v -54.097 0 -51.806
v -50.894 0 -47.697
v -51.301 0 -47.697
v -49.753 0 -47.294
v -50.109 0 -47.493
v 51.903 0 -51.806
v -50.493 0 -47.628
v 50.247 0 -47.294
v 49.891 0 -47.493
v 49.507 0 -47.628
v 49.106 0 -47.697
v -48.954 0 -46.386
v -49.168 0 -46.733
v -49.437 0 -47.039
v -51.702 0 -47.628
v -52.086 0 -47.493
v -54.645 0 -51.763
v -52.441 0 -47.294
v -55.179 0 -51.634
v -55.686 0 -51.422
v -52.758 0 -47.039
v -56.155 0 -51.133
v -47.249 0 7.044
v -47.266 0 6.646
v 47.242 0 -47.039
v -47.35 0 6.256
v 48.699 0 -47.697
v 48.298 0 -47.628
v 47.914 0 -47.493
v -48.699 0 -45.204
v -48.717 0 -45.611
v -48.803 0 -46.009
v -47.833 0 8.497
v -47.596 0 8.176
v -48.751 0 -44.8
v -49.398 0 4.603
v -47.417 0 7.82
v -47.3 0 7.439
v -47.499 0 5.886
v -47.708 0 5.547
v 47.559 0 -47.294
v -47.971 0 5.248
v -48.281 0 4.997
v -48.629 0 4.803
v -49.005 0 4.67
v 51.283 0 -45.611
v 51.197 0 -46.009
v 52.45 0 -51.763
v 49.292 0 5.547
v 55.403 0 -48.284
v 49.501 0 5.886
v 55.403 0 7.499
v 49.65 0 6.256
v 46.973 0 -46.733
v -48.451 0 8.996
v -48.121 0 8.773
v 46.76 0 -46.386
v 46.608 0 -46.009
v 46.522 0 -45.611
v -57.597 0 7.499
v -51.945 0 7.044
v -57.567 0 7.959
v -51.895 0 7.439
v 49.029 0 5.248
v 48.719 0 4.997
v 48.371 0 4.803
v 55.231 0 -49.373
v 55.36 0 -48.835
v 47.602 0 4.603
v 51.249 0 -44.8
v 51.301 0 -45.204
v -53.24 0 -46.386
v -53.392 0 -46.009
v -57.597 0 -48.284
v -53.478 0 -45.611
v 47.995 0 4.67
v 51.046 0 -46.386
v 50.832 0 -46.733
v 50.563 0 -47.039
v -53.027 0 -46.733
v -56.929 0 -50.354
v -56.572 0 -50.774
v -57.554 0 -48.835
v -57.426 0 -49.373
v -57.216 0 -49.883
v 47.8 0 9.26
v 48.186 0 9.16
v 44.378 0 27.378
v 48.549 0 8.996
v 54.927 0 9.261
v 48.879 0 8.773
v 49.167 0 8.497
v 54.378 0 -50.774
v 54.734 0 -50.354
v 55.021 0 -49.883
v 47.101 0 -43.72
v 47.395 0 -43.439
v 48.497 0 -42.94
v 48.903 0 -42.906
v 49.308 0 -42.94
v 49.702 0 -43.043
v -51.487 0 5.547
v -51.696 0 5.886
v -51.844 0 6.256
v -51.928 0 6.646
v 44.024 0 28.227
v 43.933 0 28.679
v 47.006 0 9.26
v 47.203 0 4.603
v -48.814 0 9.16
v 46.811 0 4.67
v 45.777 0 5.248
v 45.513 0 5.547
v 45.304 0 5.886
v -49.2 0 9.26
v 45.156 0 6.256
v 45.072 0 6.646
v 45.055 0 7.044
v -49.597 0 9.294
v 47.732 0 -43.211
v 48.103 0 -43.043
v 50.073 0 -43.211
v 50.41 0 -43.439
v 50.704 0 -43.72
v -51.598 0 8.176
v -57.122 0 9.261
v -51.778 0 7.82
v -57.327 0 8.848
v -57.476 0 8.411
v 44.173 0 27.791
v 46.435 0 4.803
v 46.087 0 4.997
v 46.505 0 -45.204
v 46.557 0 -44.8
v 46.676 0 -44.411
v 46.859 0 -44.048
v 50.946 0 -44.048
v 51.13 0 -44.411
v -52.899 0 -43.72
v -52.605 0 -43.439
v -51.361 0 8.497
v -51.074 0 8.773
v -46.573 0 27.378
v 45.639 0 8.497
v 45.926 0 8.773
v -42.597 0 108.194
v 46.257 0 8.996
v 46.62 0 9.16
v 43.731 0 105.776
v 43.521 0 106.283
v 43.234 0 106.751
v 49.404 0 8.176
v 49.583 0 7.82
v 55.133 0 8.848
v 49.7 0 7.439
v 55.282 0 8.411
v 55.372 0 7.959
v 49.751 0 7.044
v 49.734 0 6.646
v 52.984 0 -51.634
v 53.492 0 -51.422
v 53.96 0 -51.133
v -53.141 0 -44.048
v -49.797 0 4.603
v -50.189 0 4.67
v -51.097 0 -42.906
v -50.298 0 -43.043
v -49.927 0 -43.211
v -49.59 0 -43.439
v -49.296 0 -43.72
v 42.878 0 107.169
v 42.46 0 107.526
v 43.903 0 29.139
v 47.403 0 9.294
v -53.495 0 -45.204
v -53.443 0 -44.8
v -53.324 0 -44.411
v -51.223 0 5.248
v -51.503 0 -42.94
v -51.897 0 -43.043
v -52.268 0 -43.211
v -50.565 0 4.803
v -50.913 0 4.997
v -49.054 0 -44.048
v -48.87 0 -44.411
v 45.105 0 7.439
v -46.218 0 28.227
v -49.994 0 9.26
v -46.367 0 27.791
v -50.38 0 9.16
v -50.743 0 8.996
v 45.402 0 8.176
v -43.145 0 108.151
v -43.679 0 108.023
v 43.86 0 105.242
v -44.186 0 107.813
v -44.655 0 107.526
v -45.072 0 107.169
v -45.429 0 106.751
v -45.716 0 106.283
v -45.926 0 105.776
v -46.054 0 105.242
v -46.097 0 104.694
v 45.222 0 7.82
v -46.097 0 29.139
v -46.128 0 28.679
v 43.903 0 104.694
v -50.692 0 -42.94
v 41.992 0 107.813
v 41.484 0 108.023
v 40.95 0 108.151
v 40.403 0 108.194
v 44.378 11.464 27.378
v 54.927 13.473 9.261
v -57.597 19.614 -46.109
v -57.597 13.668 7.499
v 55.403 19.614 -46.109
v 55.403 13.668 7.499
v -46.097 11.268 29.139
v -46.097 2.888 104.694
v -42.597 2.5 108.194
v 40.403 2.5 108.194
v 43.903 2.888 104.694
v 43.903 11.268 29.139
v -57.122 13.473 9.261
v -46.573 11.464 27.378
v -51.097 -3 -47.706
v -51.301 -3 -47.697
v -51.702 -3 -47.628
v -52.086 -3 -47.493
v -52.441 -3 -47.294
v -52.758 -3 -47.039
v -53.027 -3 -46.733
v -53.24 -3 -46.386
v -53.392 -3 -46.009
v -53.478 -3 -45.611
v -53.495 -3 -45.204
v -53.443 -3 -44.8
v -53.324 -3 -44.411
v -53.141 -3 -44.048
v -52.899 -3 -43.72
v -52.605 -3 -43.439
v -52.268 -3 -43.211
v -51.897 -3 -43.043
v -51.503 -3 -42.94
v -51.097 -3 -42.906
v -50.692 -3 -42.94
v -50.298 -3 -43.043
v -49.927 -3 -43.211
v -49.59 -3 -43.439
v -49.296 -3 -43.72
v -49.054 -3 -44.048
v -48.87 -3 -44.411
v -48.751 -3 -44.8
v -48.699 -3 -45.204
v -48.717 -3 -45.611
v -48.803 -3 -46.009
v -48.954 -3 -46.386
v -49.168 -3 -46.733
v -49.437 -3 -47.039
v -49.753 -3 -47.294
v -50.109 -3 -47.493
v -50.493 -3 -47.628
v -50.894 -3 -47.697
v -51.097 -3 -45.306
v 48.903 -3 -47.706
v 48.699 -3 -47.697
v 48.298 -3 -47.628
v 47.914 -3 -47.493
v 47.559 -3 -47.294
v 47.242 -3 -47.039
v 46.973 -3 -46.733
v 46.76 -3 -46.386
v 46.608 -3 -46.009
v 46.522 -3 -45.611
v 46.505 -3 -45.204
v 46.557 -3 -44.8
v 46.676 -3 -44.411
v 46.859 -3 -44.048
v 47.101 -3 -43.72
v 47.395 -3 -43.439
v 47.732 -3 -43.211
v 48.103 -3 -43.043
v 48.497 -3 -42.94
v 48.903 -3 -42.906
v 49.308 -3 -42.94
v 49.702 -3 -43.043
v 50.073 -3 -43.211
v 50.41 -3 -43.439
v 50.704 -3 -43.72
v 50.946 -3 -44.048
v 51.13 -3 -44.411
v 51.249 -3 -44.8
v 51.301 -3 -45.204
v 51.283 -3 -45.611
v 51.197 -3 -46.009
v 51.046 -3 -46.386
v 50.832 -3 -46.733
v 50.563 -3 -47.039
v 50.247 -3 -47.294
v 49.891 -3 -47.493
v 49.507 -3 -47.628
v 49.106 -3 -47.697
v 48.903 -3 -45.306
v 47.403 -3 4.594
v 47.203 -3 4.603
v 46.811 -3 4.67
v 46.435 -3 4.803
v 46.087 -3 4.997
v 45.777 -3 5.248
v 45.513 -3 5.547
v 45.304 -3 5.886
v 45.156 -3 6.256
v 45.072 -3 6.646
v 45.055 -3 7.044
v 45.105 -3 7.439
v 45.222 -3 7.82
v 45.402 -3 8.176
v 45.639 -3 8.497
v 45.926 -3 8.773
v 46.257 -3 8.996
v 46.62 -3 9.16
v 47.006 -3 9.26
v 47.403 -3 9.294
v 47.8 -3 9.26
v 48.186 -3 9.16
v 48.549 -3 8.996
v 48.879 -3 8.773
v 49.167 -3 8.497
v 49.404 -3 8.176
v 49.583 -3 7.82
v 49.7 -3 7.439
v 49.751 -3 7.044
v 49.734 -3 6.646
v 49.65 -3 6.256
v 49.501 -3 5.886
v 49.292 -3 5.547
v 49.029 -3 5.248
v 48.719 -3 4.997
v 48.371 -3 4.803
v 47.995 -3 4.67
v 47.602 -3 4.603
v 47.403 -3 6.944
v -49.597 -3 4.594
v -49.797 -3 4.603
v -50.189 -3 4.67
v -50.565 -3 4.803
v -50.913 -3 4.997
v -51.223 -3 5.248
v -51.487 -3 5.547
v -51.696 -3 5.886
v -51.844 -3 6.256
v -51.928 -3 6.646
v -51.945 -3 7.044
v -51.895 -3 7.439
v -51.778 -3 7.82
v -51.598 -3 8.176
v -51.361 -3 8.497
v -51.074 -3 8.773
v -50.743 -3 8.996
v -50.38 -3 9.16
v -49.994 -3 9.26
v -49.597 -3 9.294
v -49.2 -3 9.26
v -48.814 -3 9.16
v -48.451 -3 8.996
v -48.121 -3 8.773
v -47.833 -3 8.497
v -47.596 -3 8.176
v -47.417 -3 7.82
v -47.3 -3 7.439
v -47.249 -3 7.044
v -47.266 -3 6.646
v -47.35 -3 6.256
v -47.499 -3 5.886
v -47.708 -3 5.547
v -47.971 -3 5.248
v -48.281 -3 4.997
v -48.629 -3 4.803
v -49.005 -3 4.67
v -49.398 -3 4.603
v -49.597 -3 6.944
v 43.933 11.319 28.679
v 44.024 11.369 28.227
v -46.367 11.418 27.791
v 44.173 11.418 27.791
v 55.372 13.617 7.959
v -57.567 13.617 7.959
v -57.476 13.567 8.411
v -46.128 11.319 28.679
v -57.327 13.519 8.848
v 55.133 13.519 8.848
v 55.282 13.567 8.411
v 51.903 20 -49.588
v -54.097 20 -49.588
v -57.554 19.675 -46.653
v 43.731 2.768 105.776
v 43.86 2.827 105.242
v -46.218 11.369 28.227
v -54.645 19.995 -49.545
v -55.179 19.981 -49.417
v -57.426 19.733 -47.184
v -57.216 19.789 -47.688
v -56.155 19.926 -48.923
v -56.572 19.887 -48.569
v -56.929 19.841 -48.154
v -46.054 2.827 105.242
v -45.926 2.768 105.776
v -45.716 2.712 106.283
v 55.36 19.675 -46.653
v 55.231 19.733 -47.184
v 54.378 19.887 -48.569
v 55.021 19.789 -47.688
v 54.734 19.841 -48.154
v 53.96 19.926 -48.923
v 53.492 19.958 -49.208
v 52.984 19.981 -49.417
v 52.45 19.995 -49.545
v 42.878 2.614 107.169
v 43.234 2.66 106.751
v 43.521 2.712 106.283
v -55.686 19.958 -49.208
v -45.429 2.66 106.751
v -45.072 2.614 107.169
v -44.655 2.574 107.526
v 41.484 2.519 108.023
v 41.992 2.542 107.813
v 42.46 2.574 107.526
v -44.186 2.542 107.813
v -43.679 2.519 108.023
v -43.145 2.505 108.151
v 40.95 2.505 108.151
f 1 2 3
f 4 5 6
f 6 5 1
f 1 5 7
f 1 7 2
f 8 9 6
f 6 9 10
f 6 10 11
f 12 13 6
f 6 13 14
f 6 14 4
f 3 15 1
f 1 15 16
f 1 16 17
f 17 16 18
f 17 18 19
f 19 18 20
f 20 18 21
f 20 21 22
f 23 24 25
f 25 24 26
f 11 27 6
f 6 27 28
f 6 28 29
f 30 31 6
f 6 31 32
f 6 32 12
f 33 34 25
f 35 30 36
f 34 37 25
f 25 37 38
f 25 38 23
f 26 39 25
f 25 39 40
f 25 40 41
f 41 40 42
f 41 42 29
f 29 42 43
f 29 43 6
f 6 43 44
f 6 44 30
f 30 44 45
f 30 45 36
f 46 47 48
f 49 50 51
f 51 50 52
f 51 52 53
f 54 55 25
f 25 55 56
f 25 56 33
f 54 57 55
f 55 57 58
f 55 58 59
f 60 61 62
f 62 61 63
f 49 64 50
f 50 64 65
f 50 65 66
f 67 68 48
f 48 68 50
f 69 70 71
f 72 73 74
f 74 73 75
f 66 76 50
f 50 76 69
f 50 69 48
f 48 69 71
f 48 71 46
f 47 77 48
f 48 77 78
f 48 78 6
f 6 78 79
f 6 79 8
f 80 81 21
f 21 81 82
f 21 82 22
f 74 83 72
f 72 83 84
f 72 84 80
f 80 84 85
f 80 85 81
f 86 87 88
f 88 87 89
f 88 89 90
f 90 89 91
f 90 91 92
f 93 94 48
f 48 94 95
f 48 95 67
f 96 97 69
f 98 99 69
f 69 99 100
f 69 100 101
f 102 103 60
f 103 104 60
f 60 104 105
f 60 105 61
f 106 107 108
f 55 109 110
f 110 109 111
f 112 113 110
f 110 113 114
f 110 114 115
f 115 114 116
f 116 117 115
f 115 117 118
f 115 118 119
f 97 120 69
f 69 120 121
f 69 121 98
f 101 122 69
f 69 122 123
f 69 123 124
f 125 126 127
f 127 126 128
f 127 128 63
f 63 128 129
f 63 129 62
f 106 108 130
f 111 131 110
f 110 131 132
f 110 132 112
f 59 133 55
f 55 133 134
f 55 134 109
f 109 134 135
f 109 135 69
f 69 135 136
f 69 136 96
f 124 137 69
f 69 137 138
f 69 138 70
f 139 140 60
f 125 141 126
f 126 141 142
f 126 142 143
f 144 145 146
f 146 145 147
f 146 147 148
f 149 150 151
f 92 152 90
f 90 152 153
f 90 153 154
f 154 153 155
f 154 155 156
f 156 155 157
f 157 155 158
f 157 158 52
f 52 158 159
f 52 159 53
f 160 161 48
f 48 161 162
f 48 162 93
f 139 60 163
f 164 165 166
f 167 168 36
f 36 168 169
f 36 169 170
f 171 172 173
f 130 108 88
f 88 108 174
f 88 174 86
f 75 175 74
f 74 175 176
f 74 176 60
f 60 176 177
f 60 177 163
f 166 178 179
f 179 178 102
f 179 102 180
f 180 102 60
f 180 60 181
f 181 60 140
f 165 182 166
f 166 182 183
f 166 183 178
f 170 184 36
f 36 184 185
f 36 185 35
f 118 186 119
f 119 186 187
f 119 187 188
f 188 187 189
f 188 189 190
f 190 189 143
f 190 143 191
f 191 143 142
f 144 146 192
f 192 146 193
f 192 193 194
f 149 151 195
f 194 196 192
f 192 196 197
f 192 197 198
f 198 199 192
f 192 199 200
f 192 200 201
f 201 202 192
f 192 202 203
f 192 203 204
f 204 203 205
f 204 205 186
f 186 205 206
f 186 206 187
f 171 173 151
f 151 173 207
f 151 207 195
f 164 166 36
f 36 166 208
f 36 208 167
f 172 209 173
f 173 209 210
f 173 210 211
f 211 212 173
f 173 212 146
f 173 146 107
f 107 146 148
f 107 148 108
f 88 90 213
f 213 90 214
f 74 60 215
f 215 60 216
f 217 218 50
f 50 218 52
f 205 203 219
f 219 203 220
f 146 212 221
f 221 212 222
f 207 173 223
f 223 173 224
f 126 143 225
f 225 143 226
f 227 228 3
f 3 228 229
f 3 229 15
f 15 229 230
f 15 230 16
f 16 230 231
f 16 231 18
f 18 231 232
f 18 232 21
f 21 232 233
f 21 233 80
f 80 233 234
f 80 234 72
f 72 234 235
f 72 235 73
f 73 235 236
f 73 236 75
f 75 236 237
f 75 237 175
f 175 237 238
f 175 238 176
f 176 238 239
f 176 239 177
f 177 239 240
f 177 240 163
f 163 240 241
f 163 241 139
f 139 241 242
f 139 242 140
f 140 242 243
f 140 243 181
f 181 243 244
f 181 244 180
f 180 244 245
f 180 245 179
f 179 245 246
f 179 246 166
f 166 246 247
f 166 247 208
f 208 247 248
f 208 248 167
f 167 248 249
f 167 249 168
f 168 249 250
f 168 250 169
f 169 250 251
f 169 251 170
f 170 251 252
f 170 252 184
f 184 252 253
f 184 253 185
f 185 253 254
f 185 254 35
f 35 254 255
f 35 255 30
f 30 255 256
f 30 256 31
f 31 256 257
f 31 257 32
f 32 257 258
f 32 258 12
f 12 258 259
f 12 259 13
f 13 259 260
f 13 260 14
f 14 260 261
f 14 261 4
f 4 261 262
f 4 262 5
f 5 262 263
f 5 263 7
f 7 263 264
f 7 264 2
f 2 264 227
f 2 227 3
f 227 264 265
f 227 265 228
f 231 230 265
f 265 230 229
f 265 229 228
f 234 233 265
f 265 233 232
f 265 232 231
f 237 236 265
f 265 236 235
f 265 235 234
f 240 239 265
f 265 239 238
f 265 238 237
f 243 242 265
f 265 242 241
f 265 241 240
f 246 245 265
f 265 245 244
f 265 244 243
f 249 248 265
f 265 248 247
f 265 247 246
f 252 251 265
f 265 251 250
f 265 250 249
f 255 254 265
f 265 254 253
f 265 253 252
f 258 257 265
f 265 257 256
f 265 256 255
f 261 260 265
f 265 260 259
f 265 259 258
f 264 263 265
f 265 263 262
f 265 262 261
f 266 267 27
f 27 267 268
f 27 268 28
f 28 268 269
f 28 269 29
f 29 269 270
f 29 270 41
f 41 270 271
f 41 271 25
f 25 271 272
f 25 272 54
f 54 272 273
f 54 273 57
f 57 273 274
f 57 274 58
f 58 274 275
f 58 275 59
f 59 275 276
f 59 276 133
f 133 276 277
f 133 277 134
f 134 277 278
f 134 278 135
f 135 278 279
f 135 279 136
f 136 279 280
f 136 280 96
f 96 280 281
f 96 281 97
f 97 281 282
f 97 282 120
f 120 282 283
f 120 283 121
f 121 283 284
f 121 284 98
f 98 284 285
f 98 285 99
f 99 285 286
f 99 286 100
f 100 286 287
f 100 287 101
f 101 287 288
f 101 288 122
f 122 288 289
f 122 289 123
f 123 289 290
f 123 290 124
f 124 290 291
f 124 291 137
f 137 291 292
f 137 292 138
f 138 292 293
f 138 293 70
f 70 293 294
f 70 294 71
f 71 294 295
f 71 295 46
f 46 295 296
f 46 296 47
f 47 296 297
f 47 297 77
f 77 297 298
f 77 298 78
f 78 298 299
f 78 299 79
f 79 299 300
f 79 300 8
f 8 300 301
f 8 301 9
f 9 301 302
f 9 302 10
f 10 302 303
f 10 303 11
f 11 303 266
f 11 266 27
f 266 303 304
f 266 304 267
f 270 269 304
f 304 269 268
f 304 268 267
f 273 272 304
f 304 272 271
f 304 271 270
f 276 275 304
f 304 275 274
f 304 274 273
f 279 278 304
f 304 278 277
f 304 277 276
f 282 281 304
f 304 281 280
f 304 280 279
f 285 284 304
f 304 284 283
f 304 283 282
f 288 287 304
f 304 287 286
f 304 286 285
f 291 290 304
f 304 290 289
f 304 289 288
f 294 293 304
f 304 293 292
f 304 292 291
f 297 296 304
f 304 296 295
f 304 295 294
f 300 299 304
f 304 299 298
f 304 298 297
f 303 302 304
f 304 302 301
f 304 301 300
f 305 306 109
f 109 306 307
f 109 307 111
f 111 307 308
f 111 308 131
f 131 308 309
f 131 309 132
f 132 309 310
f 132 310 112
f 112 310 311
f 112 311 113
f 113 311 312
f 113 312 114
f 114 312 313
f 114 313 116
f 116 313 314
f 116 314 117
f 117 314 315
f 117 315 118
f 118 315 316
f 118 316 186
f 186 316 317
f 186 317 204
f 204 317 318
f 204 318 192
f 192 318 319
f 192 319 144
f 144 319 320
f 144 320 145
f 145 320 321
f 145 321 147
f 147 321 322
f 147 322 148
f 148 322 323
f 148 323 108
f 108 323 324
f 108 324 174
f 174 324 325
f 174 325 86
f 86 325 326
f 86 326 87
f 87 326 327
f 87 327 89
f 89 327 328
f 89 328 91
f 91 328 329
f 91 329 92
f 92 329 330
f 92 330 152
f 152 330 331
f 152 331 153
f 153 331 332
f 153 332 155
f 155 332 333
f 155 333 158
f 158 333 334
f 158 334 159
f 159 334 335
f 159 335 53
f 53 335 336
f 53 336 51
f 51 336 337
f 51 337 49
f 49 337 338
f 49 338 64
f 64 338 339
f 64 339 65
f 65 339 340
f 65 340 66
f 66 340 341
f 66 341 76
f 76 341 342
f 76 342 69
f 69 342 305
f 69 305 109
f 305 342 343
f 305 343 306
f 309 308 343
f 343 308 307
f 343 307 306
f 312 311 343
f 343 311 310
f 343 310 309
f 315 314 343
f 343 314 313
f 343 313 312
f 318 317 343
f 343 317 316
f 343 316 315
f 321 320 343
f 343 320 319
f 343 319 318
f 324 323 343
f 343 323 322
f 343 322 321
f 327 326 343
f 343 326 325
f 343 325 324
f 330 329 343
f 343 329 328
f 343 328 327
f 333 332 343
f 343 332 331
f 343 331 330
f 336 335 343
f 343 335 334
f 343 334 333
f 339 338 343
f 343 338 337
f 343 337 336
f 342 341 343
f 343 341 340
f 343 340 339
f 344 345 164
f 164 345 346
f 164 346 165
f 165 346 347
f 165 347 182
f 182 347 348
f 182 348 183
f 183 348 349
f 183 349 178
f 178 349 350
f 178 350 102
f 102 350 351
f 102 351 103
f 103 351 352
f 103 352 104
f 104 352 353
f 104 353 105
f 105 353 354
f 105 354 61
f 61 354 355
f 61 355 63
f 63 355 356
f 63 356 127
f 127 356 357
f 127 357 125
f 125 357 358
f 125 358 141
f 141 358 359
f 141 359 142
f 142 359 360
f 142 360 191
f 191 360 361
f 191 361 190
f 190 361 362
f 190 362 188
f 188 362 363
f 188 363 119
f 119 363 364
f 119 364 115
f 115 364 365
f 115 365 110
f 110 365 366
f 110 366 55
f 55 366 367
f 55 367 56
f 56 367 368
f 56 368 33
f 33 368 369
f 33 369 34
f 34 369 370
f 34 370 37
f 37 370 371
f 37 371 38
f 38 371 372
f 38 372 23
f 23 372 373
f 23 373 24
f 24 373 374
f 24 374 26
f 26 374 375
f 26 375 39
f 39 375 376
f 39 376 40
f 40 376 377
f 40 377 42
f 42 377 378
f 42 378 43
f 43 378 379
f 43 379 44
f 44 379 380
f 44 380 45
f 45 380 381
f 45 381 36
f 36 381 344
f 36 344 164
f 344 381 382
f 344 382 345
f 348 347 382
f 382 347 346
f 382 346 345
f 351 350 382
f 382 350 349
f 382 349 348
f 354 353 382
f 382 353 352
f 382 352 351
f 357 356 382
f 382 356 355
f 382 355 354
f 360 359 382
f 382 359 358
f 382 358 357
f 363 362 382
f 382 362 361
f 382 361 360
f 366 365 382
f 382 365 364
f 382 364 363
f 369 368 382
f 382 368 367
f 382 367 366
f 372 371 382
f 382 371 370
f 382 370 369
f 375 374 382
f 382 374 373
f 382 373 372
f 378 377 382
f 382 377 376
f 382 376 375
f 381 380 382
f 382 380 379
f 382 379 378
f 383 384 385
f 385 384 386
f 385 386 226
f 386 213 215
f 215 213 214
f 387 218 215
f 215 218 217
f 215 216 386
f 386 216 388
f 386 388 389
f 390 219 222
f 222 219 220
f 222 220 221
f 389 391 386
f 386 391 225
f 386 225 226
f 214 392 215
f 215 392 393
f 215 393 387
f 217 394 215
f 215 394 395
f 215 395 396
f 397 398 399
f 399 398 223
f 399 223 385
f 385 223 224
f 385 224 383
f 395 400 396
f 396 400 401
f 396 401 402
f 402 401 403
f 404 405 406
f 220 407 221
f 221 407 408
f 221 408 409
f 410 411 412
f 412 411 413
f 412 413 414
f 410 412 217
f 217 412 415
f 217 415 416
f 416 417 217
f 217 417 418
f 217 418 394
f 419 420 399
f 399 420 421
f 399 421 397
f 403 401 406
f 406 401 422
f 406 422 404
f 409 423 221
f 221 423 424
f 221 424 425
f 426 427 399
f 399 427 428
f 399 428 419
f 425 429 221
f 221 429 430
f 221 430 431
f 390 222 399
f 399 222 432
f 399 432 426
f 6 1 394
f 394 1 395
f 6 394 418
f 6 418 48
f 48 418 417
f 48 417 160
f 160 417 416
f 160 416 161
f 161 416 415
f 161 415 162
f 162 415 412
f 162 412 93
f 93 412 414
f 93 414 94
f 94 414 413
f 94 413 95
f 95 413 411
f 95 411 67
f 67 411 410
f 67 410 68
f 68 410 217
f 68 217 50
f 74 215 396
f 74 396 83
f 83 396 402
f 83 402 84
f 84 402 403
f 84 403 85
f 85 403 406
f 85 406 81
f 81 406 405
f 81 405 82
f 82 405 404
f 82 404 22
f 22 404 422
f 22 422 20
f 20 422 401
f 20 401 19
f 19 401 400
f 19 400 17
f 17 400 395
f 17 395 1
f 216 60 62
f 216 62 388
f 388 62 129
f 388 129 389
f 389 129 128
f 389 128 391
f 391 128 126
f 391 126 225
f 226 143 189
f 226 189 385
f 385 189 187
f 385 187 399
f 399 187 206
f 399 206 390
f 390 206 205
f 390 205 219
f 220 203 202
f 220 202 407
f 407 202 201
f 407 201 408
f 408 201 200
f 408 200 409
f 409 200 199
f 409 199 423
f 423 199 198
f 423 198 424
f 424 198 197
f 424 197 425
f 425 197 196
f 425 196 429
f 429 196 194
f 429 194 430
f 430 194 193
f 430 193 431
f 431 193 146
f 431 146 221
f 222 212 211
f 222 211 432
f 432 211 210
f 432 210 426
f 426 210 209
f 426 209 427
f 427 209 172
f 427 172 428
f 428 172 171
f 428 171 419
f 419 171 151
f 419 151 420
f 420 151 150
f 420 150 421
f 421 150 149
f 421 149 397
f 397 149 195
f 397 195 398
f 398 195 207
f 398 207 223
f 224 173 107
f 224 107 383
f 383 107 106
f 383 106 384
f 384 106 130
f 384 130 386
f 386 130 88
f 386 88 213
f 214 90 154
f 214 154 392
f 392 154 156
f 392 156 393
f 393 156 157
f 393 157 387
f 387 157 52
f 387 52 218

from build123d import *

# Parameters (mm, degrees)
BOSS_EXTRUDE1_DEPTH = 20
SKETCH2_R           = 2.4
SKETCH2_R_2         = 2.35
BOSS_EXTRUDE2_DEPTH = 3
CUT_EXTRUDE1_DEPTH  = 158.718007744
FILLET1_R           = 3.5


with BuildPart() as part:
    # Sketch1 → Boss-Extrude1 (new body)
    with BuildSketch(Plane(origin=(0, 0, 0), x_dir=(1, 0, 0), z_dir=(0, 1, 0))):
        Polygon((-57.597316241, 51.805869074), (-57.597316241, -8.444130926), (-46.097316241, -28.194130926), (-46.097316241, -108.194130926), (43.902683759, -108.194130926), (43.902683759, -28.194130926), (55.402683759, -8.444130926), (55.402683759, 51.805869074), align=None)
    extrude(amount=BOSS_EXTRUDE1_DEPTH)

    # Sketch2 → Boss-Extrude2 (add)
    with BuildSketch(Plane.XZ):
        with Locations(Location((-51.097316241, -45.305869074, 0), (0, 0, 90))):
            Circle(SKETCH2_R)
        with Locations(Location((48.902683759, -45.305869074, 0), (0, 0, 90))):
            Circle(SKETCH2_R)
        with Locations(Location((47.402683759, 6.944130926, 0), (0, 0, 90))):
            Circle(SKETCH2_R_2)
        with Locations(Location((-49.597316241, 6.944130926, 0), (0, 0, 90))):
            Circle(SKETCH2_R_2)
    extrude(amount=BOSS_EXTRUDE2_DEPTH)

    # Sketch3 → Cut-Extrude1 (cut, through all)
    with BuildSketch(Plane(origin=(55.402683759, 0, 0), x_dir=(0, 0, -1), z_dir=(1, 0, 0))):
        Polygon((-108.194130926, 20), (-108.194130926, 2.5), (-8.444130926, 13.563542172), (-8.444130926, 20), align=None)
        Polygon((-8.444130926, 20), (-8.444130926, 13.563542172), (49.587615005, 20), align=None)
        Polygon((49.587615005, 20), (51.805869074, 0), (51.805869074, 20), align=None)
    extrude(amount=-CUT_EXTRUDE1_DEPTH, mode=Mode.SUBTRACT)

    # Fillet1
    fillet1_edges = [part.edges().sort_by_distance(p)[0] for p in [
        (-57.597316241, 10, -50.69674204),
        (55.402683759, 10, -50.69674204),
        (-46.097316241, 5.686508139, 28.194130926),
        (-57.597316241, 6.781771086, 8.444130926),
        (43.902683759, 5.686508139, 28.194130926),
        (43.902683759, 1.25, 108.194130926),
        (-46.097316241, 1.25, 108.194130926),
        (55.402683759, 6.781771086, 8.444130926),
    ]]
    fillet(fillet1_edges, radius=FILLET1_R)


solid = part.part
